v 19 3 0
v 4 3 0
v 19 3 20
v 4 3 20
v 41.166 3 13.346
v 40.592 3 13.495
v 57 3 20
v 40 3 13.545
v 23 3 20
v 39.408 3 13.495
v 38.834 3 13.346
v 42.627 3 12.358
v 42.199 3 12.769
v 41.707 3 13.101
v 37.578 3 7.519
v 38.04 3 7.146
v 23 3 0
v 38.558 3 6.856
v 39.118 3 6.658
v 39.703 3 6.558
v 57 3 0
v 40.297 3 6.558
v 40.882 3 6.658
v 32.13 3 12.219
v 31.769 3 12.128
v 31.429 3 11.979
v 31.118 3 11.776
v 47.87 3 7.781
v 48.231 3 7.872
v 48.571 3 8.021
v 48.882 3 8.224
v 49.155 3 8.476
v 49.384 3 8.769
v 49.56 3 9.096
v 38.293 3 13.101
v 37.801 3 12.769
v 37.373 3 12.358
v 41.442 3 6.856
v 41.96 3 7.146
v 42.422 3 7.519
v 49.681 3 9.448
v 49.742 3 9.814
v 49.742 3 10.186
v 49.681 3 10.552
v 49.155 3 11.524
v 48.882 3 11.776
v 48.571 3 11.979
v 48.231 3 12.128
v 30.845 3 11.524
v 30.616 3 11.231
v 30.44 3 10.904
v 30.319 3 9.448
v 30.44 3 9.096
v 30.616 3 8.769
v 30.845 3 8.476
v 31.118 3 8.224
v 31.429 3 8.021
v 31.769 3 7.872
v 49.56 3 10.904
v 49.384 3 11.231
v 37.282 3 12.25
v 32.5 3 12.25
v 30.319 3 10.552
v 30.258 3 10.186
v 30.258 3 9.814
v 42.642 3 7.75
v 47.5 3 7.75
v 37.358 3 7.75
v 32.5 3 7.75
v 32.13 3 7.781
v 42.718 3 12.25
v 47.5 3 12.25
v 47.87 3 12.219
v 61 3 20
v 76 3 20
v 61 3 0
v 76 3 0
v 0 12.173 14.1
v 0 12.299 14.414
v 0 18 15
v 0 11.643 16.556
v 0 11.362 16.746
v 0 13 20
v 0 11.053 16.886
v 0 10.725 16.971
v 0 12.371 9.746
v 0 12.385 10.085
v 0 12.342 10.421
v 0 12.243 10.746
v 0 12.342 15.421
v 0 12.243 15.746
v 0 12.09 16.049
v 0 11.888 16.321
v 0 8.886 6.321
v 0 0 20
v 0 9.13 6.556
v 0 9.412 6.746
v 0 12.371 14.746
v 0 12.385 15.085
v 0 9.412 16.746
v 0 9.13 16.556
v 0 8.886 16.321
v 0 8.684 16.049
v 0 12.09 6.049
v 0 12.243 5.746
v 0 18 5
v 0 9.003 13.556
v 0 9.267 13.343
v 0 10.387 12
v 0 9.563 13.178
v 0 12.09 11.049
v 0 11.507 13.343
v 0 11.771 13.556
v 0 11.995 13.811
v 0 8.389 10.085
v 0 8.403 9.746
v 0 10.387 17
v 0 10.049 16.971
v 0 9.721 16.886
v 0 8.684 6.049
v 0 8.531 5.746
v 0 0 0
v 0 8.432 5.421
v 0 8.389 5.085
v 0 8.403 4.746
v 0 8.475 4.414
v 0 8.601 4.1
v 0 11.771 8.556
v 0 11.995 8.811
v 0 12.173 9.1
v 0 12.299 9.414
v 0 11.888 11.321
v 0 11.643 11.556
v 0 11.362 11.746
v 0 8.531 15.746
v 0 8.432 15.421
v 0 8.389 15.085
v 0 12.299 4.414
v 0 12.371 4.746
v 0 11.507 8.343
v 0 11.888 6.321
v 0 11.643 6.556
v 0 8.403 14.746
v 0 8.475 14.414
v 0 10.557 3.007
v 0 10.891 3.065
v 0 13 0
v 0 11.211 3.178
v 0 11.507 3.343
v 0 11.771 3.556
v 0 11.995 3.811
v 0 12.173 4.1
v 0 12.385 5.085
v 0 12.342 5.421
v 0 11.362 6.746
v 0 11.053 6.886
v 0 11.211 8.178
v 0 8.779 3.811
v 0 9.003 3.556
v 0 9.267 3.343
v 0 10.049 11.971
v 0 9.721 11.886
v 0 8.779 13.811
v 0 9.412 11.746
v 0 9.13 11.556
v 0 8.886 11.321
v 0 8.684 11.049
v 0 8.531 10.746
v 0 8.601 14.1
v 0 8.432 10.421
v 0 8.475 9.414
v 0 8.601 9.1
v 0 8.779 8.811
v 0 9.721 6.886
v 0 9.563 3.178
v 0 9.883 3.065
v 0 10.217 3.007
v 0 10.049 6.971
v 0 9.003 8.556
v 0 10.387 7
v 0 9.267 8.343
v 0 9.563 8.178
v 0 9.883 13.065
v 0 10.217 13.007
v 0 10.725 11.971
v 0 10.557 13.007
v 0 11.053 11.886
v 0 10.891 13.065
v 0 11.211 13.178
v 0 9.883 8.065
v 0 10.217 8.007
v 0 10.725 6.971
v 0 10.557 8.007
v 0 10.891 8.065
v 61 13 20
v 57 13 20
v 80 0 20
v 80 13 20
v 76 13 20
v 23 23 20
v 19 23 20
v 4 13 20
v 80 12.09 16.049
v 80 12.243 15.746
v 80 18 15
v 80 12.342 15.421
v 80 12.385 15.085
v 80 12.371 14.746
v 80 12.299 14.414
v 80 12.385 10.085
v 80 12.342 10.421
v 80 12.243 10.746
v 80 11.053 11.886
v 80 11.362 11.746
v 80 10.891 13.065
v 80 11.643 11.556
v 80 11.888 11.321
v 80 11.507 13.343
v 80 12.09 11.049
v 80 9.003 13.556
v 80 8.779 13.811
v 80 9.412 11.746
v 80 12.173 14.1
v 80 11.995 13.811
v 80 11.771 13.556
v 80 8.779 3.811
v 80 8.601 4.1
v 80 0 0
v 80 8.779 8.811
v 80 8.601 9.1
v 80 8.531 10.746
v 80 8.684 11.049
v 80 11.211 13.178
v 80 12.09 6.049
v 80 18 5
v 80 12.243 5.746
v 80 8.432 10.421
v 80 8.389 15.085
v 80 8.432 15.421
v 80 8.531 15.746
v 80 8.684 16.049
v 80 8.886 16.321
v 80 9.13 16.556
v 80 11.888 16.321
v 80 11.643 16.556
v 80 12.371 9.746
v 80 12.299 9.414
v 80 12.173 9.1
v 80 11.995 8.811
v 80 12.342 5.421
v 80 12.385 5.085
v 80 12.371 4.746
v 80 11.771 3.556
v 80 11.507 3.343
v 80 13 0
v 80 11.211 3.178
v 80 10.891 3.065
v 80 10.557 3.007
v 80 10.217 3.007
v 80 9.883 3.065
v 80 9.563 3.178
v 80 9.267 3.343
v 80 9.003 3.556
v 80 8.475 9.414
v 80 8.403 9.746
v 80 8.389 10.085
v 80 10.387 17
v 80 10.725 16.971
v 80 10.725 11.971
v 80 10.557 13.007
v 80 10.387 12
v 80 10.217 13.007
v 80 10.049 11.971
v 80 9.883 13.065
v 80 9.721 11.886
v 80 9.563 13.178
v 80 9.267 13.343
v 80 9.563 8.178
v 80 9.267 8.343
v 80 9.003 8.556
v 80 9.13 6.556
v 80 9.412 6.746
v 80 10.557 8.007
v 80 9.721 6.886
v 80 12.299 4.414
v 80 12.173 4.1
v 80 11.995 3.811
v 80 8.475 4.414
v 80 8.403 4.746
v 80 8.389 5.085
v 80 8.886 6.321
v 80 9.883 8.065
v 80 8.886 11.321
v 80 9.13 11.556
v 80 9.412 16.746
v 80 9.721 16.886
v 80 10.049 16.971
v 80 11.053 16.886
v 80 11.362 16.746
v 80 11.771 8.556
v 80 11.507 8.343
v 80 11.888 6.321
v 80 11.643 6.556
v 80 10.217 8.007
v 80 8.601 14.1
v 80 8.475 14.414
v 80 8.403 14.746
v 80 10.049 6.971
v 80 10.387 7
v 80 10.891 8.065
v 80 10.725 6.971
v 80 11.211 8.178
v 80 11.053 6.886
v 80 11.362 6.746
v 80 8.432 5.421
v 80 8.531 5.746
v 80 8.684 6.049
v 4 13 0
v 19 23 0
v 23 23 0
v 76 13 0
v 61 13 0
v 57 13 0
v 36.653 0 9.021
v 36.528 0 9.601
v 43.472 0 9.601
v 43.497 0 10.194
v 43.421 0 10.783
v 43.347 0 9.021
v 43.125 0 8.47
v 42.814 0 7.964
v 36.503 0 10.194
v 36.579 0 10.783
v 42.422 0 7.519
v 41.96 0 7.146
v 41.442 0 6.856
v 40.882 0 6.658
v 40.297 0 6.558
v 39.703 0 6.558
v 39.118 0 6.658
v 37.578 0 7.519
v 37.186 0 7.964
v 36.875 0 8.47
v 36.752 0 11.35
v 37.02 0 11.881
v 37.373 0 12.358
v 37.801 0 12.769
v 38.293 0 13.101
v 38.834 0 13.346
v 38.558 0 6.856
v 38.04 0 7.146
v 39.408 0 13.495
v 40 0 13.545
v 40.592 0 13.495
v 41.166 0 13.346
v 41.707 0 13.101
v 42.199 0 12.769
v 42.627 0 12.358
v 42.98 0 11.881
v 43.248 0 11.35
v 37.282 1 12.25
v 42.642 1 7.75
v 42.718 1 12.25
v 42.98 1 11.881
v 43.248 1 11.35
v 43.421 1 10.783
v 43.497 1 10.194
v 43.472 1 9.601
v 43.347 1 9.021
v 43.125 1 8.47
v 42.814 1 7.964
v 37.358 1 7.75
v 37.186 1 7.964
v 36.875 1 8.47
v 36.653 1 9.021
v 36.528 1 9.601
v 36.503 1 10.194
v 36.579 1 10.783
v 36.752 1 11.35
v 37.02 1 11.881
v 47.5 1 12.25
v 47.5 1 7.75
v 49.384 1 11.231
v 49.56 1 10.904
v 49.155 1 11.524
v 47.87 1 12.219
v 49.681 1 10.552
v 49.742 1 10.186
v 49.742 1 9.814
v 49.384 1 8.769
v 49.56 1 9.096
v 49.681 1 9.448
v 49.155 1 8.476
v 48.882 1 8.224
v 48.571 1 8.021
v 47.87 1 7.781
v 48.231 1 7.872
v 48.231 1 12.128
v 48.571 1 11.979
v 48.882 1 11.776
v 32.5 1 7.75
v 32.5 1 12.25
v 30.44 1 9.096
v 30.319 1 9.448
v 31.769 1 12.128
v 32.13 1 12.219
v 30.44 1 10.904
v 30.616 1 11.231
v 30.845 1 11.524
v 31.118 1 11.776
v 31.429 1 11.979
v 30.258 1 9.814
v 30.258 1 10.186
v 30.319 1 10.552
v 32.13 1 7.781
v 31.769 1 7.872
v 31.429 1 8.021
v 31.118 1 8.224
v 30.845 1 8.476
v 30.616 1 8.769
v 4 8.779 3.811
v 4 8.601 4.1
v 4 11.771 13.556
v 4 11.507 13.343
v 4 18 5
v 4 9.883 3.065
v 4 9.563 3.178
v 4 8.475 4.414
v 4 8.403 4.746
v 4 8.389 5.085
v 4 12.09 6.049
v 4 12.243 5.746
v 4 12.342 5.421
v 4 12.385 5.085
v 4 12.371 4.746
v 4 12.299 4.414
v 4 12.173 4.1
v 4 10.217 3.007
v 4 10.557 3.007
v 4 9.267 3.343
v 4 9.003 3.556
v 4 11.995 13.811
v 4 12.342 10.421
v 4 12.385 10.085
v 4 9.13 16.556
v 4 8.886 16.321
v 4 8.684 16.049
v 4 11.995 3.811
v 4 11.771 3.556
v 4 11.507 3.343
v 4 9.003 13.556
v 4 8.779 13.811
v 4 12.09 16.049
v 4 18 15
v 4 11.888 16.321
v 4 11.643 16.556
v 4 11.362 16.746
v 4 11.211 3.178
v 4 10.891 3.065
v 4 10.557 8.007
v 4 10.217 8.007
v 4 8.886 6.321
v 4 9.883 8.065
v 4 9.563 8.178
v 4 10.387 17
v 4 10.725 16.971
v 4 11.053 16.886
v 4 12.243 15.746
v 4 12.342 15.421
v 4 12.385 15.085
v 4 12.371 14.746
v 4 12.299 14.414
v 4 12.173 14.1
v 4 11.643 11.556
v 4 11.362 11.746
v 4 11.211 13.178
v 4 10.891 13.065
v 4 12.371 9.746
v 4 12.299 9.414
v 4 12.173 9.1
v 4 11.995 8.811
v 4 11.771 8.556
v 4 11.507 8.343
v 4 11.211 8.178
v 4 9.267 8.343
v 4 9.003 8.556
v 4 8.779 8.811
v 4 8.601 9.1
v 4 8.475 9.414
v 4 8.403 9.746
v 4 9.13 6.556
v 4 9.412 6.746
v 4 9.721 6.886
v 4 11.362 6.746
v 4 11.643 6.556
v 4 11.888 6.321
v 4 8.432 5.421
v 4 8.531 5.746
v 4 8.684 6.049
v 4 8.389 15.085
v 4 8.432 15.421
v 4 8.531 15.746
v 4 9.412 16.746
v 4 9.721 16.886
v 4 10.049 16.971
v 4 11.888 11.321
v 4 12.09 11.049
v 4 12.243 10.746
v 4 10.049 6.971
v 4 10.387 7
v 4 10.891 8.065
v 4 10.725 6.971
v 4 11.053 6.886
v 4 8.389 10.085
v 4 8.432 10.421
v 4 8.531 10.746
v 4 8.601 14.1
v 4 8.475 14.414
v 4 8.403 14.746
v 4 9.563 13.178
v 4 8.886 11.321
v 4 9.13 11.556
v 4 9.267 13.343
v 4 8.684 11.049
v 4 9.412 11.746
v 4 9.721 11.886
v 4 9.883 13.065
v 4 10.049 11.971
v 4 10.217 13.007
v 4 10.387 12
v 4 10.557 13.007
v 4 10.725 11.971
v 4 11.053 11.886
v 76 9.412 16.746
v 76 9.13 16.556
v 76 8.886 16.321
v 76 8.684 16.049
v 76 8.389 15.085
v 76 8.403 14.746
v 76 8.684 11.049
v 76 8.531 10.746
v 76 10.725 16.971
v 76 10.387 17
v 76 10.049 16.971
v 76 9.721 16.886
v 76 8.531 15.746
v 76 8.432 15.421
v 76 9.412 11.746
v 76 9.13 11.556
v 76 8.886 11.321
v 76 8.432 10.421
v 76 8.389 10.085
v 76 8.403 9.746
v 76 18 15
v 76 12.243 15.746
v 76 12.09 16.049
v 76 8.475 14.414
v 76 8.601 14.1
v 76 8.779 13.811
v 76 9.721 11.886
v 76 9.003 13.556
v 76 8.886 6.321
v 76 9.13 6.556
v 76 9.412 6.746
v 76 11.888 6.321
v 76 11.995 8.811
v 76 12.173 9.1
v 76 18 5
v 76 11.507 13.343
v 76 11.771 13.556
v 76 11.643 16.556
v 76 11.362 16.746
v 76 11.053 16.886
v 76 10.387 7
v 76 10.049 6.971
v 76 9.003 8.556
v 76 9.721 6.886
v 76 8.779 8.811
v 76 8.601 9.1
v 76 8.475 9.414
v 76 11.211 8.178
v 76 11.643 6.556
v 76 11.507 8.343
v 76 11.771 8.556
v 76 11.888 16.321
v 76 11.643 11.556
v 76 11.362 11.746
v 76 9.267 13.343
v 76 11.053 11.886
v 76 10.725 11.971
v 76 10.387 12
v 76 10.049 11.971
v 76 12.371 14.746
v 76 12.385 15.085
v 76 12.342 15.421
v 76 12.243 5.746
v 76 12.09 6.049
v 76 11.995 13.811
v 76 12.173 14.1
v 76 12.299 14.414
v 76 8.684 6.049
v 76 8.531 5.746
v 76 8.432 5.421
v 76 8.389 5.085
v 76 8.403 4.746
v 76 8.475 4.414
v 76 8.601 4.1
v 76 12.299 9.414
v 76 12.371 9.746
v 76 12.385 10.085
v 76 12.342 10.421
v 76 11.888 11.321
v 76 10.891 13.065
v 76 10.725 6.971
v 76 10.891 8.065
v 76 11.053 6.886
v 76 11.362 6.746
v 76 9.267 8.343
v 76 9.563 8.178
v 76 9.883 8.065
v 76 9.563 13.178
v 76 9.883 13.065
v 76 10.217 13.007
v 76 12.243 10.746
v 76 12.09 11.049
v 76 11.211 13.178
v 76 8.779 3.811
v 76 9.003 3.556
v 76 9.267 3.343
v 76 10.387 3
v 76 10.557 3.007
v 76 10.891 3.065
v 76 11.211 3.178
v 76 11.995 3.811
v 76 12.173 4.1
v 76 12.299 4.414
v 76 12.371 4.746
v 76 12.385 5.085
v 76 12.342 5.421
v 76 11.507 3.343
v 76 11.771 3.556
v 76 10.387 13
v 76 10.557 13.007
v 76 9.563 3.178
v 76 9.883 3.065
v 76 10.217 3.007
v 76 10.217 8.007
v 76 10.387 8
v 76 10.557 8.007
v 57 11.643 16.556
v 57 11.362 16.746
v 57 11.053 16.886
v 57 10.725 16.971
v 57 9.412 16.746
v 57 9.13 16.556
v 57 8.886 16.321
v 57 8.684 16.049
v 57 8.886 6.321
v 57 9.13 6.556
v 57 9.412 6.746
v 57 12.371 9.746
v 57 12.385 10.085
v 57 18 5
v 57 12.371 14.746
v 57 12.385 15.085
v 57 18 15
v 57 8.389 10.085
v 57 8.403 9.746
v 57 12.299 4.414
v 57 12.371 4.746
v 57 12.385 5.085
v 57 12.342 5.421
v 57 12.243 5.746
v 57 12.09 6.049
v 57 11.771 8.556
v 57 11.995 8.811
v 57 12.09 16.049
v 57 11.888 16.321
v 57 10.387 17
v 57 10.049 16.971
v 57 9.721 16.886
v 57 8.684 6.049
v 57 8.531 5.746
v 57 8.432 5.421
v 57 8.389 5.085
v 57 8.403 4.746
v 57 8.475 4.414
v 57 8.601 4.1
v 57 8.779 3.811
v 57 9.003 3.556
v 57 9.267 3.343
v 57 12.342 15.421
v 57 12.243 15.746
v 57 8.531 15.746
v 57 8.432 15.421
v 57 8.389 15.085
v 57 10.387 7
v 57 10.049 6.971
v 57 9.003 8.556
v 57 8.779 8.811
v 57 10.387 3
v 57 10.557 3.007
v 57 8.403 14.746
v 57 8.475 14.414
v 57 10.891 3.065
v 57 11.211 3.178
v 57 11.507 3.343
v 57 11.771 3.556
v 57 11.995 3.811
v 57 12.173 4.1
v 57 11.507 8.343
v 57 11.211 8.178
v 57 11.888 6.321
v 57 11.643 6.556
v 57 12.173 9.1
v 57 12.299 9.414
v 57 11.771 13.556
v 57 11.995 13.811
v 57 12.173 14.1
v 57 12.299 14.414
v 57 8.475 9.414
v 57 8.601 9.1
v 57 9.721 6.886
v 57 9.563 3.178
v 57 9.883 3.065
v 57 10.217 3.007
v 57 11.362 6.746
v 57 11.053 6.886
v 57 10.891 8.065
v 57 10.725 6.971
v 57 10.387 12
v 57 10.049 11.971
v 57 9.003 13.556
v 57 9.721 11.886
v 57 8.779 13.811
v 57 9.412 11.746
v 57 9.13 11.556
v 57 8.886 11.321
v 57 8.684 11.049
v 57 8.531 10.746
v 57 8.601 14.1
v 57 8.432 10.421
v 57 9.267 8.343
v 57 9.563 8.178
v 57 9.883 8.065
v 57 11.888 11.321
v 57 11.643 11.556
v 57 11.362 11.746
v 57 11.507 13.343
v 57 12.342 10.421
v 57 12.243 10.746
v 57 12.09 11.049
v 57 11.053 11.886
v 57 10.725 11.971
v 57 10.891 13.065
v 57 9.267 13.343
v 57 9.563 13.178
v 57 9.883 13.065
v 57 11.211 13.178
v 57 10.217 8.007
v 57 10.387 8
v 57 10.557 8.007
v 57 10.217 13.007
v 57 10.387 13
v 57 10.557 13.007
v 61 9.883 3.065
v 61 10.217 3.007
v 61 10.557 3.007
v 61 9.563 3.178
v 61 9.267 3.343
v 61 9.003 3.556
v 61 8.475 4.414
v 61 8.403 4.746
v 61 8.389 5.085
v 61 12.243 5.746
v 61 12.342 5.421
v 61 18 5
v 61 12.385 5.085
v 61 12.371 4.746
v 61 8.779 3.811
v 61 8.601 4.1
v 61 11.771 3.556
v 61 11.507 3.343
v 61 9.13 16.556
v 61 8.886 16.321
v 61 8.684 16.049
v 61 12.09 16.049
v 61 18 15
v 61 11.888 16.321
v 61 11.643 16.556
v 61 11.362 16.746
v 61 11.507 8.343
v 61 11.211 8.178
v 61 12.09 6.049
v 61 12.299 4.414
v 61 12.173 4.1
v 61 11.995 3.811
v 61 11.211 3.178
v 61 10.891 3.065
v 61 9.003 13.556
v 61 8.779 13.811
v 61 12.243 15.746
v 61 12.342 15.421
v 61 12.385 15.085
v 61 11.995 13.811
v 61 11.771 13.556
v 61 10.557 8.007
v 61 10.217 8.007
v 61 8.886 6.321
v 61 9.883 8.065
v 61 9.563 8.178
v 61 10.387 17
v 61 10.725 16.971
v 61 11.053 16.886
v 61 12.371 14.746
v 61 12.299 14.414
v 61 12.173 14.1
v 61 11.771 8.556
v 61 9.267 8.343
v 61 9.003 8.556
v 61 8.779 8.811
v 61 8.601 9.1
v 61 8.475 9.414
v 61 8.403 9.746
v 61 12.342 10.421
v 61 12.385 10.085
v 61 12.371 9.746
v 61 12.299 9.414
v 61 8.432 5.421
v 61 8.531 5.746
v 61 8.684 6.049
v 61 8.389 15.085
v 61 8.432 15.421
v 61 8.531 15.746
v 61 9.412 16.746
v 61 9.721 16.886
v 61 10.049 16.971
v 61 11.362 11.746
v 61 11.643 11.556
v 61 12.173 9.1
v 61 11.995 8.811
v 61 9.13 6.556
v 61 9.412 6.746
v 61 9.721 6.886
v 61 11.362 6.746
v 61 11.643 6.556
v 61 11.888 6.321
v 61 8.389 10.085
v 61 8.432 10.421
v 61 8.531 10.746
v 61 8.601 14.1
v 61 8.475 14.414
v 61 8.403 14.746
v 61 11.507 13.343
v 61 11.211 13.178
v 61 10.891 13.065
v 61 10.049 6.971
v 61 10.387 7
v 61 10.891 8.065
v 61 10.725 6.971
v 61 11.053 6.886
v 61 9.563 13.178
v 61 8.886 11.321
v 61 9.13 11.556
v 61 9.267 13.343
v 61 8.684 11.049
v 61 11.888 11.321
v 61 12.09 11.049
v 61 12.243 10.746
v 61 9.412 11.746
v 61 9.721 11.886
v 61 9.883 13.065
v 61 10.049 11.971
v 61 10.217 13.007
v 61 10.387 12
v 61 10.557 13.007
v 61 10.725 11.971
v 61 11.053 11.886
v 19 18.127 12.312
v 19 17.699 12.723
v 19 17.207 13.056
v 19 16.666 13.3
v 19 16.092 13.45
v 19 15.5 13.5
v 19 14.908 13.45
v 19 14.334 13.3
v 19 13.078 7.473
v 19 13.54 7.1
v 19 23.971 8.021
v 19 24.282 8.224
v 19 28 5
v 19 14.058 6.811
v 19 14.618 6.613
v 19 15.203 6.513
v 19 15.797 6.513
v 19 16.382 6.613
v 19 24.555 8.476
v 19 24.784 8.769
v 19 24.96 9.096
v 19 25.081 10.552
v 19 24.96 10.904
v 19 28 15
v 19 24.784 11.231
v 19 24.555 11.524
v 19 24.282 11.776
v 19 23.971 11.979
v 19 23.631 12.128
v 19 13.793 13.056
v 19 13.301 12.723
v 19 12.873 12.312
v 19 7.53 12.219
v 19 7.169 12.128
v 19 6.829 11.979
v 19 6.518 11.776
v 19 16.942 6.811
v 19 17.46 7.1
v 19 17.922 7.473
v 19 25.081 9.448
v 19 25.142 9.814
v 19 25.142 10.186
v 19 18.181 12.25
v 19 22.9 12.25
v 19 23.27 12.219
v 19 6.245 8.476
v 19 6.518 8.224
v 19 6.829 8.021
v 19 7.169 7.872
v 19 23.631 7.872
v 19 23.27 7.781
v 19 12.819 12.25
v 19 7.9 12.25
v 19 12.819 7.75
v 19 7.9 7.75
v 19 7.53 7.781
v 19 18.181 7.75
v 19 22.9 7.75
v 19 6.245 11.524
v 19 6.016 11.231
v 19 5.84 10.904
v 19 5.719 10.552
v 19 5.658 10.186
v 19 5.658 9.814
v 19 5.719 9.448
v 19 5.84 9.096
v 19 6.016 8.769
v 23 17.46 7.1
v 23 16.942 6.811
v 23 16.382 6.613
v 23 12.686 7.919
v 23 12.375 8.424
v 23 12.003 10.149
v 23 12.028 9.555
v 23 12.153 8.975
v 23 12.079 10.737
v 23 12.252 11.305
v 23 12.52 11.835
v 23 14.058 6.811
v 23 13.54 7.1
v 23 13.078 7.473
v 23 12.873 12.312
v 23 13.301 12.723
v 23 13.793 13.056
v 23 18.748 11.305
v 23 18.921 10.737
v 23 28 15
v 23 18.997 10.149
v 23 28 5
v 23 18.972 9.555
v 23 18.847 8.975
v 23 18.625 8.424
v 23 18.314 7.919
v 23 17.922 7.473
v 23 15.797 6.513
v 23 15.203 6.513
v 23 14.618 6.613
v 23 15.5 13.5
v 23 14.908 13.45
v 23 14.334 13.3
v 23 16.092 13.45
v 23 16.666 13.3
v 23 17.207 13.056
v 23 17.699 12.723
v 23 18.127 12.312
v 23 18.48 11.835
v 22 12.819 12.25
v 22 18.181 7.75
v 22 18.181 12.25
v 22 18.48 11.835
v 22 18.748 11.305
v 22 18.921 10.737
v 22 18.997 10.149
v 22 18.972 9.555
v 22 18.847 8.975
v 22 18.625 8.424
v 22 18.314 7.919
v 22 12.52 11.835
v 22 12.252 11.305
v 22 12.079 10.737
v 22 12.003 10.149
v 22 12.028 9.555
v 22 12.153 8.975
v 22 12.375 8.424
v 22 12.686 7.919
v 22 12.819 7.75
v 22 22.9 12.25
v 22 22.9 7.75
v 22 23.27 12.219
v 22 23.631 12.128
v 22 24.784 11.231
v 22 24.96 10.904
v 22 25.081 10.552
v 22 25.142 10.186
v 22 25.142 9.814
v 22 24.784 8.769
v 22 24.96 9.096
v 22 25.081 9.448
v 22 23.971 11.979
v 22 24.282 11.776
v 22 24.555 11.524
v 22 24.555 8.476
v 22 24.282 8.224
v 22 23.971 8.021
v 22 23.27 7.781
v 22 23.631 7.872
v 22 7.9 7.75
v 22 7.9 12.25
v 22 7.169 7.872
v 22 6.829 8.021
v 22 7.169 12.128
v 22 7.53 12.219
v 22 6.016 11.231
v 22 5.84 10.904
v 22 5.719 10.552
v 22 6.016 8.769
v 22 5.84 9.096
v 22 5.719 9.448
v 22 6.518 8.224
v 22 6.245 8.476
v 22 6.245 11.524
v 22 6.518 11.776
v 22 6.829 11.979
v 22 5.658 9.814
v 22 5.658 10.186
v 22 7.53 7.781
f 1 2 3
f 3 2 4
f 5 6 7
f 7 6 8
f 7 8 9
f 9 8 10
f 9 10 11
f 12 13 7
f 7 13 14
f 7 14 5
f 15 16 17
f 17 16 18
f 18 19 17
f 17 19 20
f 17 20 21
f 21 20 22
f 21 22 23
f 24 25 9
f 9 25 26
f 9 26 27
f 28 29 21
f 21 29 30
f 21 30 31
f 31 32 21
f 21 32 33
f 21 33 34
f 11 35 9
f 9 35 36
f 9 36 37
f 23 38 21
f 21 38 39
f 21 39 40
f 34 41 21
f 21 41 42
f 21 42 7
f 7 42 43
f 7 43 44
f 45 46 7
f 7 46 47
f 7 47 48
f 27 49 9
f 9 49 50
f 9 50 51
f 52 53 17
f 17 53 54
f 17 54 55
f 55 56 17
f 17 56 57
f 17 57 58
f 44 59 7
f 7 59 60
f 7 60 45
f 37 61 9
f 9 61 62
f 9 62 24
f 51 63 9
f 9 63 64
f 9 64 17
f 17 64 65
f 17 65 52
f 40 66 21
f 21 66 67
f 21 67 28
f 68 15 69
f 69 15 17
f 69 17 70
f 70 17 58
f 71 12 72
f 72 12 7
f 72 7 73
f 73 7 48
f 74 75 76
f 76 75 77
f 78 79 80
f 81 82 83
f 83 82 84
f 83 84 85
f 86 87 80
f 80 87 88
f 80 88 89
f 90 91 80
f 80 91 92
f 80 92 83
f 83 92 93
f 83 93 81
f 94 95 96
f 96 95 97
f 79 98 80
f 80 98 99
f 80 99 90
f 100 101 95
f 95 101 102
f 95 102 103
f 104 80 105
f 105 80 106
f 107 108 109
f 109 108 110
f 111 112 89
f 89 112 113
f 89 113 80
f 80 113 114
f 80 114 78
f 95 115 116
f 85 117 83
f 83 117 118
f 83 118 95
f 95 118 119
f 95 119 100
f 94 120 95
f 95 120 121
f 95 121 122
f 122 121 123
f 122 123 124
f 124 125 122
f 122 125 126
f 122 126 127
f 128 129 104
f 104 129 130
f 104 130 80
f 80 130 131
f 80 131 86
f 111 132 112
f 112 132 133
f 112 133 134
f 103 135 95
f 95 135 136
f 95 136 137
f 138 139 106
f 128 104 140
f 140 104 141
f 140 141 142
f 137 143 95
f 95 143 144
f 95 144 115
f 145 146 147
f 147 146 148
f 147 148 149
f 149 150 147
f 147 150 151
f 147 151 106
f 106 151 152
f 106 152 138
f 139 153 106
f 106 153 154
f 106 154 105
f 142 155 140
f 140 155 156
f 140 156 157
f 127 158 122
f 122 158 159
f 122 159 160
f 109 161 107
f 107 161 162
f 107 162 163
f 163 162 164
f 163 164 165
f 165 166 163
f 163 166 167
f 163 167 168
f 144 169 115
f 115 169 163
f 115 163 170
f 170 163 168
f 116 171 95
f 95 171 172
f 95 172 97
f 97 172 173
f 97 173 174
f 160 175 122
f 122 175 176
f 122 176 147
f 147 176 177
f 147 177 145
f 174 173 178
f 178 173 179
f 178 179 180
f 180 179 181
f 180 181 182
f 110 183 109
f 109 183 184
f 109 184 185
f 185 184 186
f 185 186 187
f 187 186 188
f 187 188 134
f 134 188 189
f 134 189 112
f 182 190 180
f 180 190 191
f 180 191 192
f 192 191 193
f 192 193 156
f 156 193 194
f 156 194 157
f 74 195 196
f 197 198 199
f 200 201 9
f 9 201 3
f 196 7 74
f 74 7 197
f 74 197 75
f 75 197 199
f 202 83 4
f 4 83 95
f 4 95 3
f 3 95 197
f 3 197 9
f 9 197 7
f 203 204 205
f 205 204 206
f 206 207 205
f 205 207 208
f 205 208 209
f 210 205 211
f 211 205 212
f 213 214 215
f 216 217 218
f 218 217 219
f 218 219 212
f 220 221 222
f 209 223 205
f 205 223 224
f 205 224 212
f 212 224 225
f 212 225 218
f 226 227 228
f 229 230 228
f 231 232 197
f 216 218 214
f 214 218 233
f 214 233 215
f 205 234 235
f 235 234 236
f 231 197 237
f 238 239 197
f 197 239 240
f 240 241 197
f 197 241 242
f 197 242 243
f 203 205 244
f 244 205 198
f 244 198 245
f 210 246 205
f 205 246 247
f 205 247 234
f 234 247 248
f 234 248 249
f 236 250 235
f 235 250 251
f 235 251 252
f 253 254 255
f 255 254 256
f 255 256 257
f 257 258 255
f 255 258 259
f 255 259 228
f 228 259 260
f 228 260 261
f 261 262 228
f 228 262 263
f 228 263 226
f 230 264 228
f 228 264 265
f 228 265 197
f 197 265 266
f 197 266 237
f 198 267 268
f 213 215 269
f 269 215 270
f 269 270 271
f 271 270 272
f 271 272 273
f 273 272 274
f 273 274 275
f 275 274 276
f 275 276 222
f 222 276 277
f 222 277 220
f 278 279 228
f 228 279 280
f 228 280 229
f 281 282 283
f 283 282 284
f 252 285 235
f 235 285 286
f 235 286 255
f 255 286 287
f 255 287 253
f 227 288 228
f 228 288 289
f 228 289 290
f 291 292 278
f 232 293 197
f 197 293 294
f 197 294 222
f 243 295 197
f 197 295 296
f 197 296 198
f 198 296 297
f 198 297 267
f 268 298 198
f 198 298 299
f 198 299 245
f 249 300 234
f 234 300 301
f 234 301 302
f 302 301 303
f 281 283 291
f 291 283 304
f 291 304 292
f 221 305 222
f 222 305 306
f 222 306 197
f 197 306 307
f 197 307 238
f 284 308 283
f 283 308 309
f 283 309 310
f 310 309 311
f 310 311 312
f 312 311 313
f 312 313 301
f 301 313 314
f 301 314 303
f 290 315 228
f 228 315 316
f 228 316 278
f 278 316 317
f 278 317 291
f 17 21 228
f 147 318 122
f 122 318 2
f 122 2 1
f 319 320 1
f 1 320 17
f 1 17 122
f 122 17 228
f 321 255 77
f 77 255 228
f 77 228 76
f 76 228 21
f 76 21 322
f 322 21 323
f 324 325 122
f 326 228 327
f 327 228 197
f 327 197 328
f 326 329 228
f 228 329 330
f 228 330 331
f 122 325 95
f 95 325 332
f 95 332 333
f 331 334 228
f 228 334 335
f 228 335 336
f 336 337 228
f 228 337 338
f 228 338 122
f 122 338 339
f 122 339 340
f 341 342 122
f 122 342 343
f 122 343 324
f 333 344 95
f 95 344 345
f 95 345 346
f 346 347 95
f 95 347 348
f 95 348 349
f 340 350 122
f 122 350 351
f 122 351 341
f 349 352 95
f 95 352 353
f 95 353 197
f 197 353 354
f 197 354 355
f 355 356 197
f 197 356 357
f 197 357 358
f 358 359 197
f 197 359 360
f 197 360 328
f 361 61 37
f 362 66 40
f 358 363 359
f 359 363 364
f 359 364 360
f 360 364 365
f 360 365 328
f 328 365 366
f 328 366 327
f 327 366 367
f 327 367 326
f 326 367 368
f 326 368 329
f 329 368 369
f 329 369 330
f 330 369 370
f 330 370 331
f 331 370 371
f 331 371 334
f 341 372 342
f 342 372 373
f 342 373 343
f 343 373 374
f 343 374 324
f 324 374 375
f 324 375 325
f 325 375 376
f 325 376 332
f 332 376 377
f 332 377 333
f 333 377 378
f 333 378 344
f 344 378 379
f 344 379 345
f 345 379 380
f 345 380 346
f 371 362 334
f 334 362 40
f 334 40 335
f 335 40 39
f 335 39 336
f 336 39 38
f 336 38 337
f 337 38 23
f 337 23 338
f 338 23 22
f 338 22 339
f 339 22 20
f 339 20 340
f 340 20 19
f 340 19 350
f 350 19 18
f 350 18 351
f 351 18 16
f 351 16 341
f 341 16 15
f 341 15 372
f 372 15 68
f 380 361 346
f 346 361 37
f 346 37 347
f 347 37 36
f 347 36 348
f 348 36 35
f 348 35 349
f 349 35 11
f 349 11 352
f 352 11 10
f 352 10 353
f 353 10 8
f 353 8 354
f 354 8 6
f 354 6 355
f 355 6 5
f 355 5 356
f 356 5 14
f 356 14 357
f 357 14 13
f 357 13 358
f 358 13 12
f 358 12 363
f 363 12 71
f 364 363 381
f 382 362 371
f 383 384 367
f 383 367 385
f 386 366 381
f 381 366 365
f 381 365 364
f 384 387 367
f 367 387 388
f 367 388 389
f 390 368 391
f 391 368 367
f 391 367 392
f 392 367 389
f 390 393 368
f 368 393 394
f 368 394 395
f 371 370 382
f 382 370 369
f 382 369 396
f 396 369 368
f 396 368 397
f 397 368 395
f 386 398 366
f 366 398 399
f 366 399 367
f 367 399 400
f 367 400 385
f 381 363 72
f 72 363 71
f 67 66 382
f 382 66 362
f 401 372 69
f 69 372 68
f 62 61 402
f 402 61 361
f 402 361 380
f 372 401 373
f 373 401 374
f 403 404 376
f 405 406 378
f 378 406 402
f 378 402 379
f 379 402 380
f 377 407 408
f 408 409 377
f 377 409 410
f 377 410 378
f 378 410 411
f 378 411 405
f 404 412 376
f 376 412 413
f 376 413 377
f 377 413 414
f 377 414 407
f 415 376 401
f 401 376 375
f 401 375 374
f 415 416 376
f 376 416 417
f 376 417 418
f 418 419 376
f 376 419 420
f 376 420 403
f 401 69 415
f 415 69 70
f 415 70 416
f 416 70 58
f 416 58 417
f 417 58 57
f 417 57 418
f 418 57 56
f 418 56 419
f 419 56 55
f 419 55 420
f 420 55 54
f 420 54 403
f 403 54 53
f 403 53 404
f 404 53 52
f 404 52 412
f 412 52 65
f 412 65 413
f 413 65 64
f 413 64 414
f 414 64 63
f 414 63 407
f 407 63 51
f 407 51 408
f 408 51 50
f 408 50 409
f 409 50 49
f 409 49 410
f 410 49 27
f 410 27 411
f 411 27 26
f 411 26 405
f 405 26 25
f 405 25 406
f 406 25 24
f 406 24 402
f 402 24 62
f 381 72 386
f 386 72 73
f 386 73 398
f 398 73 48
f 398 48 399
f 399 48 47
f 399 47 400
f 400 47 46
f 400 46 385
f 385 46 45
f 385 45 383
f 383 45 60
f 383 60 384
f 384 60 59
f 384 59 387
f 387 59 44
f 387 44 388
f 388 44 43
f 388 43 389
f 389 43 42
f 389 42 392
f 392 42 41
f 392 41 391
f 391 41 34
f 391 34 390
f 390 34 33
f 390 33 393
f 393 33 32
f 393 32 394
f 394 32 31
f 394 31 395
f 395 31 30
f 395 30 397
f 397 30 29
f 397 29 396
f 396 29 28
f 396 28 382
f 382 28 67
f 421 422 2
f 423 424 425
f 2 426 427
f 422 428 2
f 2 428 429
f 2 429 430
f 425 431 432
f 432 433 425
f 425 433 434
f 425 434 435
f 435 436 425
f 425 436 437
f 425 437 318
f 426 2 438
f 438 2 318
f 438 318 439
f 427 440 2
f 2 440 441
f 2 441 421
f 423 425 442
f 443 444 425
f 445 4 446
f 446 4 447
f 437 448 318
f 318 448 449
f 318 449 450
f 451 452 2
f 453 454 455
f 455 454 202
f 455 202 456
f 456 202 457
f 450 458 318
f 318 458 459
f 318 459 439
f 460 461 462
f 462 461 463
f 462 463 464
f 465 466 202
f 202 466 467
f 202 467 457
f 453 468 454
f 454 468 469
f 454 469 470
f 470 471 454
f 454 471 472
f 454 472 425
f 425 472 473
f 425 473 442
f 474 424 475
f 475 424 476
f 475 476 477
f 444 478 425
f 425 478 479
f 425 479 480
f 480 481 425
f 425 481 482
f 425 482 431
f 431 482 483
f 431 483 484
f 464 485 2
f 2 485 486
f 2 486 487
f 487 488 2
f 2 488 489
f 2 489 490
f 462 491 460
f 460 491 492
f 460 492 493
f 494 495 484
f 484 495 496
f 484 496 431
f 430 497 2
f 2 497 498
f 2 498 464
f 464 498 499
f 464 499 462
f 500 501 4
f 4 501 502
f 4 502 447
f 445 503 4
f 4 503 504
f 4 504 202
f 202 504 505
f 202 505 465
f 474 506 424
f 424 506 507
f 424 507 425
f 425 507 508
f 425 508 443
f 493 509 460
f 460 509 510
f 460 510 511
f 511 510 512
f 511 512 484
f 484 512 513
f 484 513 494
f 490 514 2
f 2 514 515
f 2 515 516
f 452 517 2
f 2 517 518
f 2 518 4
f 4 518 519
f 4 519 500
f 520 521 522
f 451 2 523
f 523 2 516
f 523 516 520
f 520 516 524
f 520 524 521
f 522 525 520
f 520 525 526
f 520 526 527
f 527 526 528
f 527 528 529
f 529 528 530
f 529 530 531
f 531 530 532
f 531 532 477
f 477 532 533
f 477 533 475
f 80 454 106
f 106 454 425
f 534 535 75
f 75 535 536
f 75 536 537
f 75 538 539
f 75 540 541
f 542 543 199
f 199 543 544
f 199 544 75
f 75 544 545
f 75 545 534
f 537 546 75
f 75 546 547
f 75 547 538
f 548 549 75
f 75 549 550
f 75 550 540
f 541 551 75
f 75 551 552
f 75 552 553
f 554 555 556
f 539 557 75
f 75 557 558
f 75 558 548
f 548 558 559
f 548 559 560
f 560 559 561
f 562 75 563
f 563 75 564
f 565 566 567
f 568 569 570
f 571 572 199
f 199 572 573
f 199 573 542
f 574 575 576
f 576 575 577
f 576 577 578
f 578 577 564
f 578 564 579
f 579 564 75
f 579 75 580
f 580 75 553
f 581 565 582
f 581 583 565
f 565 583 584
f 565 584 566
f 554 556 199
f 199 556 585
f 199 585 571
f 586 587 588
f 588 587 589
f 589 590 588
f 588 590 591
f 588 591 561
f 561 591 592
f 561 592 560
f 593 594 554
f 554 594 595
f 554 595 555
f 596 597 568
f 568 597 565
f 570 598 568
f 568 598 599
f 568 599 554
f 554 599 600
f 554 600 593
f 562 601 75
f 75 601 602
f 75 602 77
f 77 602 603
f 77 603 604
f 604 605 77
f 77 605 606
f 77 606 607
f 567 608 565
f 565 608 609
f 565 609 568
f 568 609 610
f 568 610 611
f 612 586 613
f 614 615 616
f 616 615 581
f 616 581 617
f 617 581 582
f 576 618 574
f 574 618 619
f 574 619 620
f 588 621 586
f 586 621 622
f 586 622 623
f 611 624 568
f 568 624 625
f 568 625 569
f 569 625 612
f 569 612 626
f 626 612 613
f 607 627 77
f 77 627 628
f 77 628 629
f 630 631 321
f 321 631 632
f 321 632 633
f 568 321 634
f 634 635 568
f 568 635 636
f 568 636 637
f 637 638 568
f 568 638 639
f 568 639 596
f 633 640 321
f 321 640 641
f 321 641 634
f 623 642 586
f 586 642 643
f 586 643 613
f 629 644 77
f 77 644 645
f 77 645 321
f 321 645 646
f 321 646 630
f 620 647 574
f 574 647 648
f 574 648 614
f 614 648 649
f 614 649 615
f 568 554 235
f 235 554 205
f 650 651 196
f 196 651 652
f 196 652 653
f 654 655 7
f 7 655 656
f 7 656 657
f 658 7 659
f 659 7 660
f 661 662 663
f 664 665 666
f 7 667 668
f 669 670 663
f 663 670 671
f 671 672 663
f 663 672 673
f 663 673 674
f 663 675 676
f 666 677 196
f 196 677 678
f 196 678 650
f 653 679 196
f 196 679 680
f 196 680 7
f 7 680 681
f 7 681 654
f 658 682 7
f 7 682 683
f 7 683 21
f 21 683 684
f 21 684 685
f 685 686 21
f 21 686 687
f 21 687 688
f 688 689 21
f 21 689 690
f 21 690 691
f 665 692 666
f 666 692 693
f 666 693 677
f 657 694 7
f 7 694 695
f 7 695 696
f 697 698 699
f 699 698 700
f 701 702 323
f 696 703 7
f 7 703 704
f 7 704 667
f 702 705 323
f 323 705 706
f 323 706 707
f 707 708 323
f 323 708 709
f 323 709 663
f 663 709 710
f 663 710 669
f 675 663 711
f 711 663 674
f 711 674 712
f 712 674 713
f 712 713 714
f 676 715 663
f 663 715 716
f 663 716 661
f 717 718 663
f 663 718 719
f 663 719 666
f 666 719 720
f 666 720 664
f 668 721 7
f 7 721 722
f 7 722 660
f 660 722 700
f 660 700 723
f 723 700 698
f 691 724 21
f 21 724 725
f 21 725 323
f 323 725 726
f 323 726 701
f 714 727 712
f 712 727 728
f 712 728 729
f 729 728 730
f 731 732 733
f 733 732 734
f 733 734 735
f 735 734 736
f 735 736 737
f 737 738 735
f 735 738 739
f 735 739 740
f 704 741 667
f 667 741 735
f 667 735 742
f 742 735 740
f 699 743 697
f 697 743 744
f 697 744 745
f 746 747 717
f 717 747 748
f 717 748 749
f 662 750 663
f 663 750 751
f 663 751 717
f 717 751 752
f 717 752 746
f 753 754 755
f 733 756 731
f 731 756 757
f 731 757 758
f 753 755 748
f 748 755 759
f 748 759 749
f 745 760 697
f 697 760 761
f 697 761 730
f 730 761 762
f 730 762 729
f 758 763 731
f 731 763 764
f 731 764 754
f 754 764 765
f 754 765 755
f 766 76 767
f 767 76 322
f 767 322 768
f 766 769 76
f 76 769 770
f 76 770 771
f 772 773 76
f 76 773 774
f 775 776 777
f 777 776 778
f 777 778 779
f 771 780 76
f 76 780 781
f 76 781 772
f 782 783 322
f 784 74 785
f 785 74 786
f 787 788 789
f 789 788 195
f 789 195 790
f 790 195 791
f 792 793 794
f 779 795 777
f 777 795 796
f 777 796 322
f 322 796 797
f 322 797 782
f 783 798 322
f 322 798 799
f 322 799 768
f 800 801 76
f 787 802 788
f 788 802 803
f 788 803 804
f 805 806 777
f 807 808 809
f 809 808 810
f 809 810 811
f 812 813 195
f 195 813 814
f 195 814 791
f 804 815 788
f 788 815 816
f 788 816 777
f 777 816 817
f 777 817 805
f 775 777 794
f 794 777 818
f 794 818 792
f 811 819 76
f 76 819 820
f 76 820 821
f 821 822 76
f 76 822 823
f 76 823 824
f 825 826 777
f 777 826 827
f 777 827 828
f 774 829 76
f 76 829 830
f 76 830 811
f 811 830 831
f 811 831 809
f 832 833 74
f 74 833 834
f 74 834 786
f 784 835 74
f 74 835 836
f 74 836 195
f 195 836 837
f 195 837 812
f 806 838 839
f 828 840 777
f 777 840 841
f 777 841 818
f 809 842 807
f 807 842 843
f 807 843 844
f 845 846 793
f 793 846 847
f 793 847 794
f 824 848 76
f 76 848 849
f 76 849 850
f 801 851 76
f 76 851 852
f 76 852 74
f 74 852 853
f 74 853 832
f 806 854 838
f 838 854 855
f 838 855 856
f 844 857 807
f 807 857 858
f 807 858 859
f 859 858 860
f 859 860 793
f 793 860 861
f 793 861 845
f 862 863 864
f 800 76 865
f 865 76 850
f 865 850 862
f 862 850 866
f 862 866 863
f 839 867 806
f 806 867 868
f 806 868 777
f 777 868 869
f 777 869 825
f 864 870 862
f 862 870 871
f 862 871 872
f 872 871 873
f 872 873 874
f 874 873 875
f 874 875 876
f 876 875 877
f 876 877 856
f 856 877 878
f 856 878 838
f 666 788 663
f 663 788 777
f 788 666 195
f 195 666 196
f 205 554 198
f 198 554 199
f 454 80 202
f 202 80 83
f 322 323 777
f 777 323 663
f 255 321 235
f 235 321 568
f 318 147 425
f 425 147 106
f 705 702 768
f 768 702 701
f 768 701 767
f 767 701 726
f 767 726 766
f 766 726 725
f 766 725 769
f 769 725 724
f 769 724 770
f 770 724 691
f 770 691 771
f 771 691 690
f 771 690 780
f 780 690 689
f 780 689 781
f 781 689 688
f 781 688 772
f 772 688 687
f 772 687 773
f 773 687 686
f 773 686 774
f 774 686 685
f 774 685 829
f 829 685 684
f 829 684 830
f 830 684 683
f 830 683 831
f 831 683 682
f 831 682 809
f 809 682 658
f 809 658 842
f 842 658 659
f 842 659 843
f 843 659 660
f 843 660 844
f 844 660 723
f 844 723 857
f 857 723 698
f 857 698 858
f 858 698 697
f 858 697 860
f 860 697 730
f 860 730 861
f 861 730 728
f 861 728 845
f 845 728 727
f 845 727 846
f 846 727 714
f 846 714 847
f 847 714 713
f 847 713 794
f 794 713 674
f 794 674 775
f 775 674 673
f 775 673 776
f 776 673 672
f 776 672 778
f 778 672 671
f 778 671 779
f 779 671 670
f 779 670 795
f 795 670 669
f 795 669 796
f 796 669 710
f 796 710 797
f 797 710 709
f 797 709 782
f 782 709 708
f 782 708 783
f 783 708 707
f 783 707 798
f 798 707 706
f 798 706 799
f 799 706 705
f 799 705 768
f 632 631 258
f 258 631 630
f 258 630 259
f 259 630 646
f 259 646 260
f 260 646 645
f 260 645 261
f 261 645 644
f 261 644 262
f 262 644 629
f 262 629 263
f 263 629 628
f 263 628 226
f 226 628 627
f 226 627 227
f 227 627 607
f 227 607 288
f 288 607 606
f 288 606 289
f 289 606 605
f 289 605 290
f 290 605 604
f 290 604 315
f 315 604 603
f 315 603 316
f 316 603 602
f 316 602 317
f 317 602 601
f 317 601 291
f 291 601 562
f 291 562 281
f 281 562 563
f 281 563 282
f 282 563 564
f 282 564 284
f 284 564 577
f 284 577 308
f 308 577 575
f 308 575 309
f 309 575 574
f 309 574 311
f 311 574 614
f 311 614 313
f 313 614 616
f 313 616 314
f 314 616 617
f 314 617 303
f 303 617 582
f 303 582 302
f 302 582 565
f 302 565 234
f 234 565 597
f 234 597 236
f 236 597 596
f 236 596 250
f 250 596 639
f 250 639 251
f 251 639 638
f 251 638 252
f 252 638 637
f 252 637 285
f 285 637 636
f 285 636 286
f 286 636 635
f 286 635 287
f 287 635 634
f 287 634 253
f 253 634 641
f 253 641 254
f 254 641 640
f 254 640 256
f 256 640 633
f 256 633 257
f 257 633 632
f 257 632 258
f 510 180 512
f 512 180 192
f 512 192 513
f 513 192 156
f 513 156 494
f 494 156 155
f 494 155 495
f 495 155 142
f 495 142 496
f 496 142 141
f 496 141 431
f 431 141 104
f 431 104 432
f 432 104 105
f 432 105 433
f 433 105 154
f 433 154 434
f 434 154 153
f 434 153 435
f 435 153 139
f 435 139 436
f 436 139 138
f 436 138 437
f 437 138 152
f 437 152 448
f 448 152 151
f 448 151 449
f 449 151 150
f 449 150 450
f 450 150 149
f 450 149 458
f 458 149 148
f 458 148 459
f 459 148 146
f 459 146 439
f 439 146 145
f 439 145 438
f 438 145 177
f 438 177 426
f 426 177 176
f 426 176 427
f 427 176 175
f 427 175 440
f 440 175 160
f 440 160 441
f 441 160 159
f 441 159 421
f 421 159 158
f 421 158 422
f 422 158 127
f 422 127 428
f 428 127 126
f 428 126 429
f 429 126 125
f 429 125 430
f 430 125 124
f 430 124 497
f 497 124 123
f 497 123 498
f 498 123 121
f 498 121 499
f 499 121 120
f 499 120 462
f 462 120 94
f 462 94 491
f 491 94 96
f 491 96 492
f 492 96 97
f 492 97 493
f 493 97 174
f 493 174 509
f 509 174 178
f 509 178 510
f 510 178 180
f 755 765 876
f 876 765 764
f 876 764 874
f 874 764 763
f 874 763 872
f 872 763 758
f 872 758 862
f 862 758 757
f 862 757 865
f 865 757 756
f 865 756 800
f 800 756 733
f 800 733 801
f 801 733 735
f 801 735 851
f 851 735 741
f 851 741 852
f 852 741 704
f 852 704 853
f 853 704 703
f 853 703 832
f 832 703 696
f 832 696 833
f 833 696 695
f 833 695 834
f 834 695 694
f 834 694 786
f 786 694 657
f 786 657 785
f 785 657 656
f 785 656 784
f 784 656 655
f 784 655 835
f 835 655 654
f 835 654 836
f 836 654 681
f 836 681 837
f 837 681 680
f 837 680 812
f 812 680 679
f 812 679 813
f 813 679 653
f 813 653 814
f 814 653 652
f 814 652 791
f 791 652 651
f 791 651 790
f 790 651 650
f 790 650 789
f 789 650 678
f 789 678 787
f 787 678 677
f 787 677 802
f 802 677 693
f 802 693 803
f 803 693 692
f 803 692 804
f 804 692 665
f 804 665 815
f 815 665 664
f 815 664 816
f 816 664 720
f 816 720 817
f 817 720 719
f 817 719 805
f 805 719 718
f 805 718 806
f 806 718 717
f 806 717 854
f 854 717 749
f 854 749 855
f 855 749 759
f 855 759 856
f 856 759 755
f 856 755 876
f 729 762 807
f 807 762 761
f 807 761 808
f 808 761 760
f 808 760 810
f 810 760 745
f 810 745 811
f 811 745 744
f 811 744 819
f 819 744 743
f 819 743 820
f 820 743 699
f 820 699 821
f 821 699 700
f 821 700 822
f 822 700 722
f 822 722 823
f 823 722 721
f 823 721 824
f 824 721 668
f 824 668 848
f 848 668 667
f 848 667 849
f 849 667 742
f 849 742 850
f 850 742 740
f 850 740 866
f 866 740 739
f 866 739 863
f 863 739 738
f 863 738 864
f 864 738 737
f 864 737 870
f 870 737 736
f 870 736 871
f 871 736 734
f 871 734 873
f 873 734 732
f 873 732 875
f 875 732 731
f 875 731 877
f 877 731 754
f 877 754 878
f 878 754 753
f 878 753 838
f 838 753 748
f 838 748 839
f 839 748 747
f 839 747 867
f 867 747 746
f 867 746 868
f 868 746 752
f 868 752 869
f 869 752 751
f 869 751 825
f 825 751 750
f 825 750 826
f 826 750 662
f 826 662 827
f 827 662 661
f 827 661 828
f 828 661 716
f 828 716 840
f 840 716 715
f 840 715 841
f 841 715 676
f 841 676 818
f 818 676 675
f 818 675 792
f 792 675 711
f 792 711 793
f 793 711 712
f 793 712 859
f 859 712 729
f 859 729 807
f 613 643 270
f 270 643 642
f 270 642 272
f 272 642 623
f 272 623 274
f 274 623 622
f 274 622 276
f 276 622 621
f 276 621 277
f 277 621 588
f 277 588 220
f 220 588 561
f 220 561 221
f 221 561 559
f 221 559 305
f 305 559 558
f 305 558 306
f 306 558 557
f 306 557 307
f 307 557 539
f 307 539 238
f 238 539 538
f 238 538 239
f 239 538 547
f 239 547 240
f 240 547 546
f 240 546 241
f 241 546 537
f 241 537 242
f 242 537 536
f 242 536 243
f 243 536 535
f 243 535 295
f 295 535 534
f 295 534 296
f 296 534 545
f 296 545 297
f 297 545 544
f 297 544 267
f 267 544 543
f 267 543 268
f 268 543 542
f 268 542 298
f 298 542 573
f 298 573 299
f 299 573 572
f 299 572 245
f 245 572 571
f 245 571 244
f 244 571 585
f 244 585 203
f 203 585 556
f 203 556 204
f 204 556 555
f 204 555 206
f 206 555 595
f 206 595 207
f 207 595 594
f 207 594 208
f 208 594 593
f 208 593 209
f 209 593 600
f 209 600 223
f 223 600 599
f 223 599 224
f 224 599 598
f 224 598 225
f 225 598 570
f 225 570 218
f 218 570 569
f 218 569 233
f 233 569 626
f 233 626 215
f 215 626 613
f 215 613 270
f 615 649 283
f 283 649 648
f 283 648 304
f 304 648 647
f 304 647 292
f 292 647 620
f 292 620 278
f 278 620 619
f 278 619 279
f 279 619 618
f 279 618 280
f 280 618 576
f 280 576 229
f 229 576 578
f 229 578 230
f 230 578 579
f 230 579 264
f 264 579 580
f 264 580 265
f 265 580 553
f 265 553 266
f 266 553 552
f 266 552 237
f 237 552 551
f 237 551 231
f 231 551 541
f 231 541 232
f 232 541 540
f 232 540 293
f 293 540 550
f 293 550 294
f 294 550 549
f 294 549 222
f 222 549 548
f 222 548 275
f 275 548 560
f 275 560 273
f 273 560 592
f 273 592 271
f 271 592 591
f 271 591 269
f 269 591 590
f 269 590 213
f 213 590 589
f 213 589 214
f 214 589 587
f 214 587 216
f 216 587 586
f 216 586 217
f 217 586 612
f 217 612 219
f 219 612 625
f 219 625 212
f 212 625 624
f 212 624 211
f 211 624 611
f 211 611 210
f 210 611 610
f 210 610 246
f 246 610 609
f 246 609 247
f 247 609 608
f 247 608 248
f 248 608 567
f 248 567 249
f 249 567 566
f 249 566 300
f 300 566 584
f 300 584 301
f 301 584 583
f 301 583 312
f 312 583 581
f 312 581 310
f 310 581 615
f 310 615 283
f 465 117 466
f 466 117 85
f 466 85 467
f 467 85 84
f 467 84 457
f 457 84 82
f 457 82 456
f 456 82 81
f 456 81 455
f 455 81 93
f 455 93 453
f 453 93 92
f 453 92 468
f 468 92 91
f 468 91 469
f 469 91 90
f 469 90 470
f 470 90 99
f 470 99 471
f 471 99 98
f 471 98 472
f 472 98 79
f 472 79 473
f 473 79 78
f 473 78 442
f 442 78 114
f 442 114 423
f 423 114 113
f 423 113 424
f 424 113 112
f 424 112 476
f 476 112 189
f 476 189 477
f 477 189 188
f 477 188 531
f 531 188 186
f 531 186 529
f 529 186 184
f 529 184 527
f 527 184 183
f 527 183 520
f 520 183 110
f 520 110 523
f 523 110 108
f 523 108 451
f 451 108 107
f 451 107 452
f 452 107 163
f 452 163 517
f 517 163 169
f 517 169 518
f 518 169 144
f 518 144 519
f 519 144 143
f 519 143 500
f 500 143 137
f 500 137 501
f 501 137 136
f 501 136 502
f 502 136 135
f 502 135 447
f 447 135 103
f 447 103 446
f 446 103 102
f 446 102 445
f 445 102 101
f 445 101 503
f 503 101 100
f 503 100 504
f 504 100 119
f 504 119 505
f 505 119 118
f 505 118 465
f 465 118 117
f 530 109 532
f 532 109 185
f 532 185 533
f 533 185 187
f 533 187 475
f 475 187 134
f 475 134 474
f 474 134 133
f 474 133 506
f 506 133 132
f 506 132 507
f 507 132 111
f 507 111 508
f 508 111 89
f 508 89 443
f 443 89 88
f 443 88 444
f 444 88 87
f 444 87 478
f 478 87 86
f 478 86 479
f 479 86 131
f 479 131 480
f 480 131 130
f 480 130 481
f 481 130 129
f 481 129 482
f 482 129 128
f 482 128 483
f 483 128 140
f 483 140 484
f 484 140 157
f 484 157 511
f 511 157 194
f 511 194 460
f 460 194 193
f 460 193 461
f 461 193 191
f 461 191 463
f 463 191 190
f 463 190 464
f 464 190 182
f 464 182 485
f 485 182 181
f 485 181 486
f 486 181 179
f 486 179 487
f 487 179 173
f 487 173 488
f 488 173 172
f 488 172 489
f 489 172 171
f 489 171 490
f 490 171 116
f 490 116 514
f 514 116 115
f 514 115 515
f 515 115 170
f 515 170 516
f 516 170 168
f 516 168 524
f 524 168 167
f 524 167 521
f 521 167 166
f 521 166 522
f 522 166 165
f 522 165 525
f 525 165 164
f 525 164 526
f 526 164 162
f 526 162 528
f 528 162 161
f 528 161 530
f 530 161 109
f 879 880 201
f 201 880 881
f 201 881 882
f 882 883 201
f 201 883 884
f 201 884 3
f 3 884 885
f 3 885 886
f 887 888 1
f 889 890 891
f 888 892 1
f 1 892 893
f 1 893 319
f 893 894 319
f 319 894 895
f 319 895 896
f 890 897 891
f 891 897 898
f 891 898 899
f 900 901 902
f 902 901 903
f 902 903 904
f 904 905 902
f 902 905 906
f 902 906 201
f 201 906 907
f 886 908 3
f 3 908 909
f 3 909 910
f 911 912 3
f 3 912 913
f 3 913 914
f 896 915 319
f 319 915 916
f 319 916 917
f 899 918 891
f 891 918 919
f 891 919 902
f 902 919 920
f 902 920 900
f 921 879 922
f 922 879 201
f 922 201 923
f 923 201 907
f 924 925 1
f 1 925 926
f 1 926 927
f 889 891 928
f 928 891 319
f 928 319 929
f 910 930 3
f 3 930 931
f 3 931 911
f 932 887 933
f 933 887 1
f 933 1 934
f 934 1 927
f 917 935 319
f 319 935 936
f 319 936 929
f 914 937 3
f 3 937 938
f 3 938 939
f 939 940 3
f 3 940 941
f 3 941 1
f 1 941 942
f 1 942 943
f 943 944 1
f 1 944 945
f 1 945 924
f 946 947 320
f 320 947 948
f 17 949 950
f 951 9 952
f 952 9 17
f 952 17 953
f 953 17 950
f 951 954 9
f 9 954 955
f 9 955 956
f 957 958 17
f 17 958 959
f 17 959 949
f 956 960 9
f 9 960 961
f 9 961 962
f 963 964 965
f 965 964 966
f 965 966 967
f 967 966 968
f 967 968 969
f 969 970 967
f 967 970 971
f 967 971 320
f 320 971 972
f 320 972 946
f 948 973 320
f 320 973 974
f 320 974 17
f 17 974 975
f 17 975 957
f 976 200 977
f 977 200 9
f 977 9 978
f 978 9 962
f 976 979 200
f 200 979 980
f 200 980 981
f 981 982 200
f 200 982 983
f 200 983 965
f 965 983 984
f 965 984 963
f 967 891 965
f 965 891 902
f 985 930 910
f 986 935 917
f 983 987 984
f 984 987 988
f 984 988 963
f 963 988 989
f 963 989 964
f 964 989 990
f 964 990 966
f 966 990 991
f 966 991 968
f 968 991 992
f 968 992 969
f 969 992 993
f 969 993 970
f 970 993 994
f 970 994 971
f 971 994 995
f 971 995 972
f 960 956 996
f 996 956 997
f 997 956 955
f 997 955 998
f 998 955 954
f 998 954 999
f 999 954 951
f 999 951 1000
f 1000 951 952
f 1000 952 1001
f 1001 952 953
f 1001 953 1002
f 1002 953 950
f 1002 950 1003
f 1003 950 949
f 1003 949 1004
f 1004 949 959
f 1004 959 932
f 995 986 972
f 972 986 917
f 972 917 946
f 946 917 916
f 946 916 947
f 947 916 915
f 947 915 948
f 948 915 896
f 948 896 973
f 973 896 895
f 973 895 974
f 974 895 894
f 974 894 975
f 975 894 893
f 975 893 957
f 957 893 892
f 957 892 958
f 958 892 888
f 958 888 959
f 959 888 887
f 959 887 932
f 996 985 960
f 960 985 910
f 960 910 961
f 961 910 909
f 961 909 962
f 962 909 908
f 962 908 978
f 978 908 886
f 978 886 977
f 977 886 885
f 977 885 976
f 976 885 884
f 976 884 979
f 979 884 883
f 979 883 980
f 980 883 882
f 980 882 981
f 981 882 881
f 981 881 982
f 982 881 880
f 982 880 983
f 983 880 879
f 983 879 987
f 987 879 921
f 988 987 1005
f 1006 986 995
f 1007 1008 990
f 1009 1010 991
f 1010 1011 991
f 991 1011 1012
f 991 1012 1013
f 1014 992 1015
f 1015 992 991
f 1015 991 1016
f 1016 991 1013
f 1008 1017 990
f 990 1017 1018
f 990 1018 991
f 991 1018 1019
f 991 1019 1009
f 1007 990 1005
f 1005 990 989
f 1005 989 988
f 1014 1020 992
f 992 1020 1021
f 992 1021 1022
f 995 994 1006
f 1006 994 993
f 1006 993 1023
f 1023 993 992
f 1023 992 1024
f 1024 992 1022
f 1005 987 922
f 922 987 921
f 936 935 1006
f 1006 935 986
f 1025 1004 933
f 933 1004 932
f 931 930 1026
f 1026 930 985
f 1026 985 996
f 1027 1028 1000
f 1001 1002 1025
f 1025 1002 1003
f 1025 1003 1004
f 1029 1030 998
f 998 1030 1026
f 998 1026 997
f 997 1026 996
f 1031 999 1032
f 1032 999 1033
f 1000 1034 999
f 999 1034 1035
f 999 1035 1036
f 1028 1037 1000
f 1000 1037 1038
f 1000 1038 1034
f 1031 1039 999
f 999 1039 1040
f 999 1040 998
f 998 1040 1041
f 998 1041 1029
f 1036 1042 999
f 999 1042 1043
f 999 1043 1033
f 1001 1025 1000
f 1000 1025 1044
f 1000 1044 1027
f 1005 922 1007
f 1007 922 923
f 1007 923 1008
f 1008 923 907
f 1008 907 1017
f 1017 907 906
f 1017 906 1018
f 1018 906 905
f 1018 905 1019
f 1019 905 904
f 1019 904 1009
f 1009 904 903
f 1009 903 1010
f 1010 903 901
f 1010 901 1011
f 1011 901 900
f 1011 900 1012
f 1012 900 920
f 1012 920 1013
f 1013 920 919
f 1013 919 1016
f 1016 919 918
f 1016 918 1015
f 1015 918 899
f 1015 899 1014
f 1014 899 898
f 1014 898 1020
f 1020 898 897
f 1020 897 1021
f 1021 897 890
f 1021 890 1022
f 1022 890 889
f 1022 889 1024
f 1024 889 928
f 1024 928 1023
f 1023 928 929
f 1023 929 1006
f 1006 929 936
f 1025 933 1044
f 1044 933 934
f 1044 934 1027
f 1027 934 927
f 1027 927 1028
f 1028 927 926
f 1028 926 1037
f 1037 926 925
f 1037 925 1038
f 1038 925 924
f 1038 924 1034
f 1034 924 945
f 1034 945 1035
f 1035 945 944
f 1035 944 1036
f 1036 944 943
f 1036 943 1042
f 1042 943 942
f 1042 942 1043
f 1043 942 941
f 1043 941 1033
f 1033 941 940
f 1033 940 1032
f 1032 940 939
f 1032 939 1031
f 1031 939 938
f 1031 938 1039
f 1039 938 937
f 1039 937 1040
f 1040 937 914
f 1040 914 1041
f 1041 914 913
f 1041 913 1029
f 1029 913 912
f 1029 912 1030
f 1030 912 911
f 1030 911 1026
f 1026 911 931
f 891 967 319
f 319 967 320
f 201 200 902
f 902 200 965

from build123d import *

# Parameters (mm, degrees)
SKETCH_1_W          = 80
SKETCH_1_H          = 20
EXTRUDE_1_DEPTH     = 3
SKETCH_2_R          = 3.5
CUT_EXTRUDE_1_DEPTH = 3
SKETCH_3_W          = 15
SKETCH_3_H          = 4.5
CUT_EXTRUDE_2_DEPTH = 2
SKETCH_5_R          = 2.25
CUT_EXTRUDE_3_DEPTH = 2
SKETCH_6_W          = 4
SKETCH_6_H          = 20
EXTRUDE_2_DEPTH     = 15
CUT_EXTRUDE_4_DEPTH = 83
SKETCH_8_R          = 2
CUT_EXTRUDE_5_DEPTH = 83
SKETCH_9_W          = 4
SKETCH_9_H          = 20
EXTRUDE_3_DEPTH     = 25
SKETCH_10_R         = 3.5
CUT_EXTRUDE_6_DEPTH = 6
SKETCH_11_W         = 4.5
SKETCH_11_H         = 15
CUT_EXTRUDE_7_DEPTH = 3
SKETCH_12_R         = 2.25
CUT_EXTRUDE_8_DEPTH = 3
CUT_EXTRUDE_9_DEPTH = 10


with BuildPart() as part:
    # 草图1 → 凸台-拉伸1 (new body)
    with BuildSketch(Plane(origin=(0, 0, 0), x_dir=(1, 0, 0), z_dir=(0, 1, 0))):
        with Locations((40, -10)):
            Rectangle(SKETCH_1_W, SKETCH_1_H)
    extrude(amount=EXTRUDE_1_DEPTH)

    # 草图2 → 切除-拉伸1 (cut)
    with BuildSketch(Plane(origin=(0, 3, 0), x_dir=(1, 0, 0), z_dir=(0, 1, 0))):
        with Locations(Location((40, -10.045477327, 0), (0, 0, 270))):
            Circle(SKETCH_2_R)
    extrude(amount=-CUT_EXTRUDE_1_DEPTH, mode=Mode.SUBTRACT)

    # 草图3 → 切除-拉伸2 (cut)
    with BuildSketch(Plane(origin=(0, 3, 0), x_dir=(1, 0, 0), z_dir=(0, 1, 0))):
        with Locations((40, -10)):
            Rectangle(SKETCH_3_W, SKETCH_3_H)
    extrude(amount=-CUT_EXTRUDE_2_DEPTH, mode=Mode.SUBTRACT)

    # 草图5 → 切除-拉伸3 (cut)
    with BuildSketch(Plane(origin=(0, 3, 0), x_dir=(1, 0, 0), z_dir=(0, 1, 0))):
        with Locations((32.5, -10)):
            Circle(SKETCH_5_R)
        with Locations((47.5, -10)):
            Circle(SKETCH_5_R)
    extrude(amount=-CUT_EXTRUDE_3_DEPTH, mode=Mode.SUBTRACT)

    # 草图6 → 凸台-拉伸2 (add)
    with BuildSketch(Plane(origin=(0, 3, 0), x_dir=(1, 0, 0), z_dir=(0, 1, 0))):
        with Locations((2, -10)):
            Rectangle(SKETCH_6_W, SKETCH_6_H)
        with Locations((78, -10)):
            Rectangle(SKETCH_6_W, SKETCH_6_H)
        with Locations((59, -10)):
            Rectangle(SKETCH_6_W, SKETCH_6_H)
    extrude(amount=EXTRUDE_2_DEPTH)

    # 草图7 → 切除-拉伸4 (cut)
    with BuildSketch(Plane(origin=(80, 0, 0), x_dir=(0, 0, -1), z_dir=(1, 0, 0))):
        Polygon((-20, 13), (-15, 18), (-20, 18), align=None)
        Polygon((0, 13), (0, 18), (-5, 18), align=None)
    extrude(amount=-CUT_EXTRUDE_4_DEPTH, mode=Mode.SUBTRACT)

    # 草图8 → 切除-拉伸5 (cut)
    with BuildSketch(Plane.ZY):
        with Locations((5, 10.386894075)):
            Circle(SKETCH_8_R)
        with Locations((10, 10.386894075)):
            Circle(SKETCH_8_R)
        with Locations((15, 10.386894075)):
            Circle(SKETCH_8_R)
    extrude(amount=-CUT_EXTRUDE_5_DEPTH, mode=Mode.SUBTRACT)

    # 草图9 → 凸台-拉伸3 (add)
    with BuildSketch(Plane(origin=(0, 3, 0), x_dir=(1, 0, 0), z_dir=(0, 1, 0))):
        with Locations((21, -10)):
            Rectangle(SKETCH_9_W, SKETCH_9_H)
    extrude(amount=EXTRUDE_3_DEPTH)

    # 草图10 → 切除-拉伸6 (cut)
    with BuildSketch(Plane.ZY.offset(-19)):
        with Locations((10, 15.5)):
            Circle(SKETCH_10_R)
    extrude(amount=-CUT_EXTRUDE_6_DEPTH, mode=Mode.SUBTRACT)

    # 草图11 → 切除-拉伸7 (cut)
    with BuildSketch(Plane.ZY.offset(-19)):
        with Locations((10, 15.4)):
            Rectangle(SKETCH_11_W, SKETCH_11_H)
    extrude(amount=-CUT_EXTRUDE_7_DEPTH, mode=Mode.SUBTRACT)

    # 草图12 → 切除-拉伸8 (cut)
    with BuildSketch(Plane.ZY.offset(-19)):
        with Locations((10, 22.9)):
            Circle(SKETCH_12_R)
        with Locations((10, 7.9)):
            Circle(SKETCH_12_R)
    extrude(amount=-CUT_EXTRUDE_8_DEPTH, mode=Mode.SUBTRACT)

    # 草图13 → 切除-拉伸9 (cut)
    with BuildSketch(Plane.ZY.offset(-19)):
        Polygon((5, 28), (0, 23), (0, 28), align=None)
        Polygon((20, 28), (15, 28), (20, 23), align=None)
    extrude(amount=-CUT_EXTRUDE_9_DEPTH, mode=Mode.SUBTRACT)


solid = part.part
